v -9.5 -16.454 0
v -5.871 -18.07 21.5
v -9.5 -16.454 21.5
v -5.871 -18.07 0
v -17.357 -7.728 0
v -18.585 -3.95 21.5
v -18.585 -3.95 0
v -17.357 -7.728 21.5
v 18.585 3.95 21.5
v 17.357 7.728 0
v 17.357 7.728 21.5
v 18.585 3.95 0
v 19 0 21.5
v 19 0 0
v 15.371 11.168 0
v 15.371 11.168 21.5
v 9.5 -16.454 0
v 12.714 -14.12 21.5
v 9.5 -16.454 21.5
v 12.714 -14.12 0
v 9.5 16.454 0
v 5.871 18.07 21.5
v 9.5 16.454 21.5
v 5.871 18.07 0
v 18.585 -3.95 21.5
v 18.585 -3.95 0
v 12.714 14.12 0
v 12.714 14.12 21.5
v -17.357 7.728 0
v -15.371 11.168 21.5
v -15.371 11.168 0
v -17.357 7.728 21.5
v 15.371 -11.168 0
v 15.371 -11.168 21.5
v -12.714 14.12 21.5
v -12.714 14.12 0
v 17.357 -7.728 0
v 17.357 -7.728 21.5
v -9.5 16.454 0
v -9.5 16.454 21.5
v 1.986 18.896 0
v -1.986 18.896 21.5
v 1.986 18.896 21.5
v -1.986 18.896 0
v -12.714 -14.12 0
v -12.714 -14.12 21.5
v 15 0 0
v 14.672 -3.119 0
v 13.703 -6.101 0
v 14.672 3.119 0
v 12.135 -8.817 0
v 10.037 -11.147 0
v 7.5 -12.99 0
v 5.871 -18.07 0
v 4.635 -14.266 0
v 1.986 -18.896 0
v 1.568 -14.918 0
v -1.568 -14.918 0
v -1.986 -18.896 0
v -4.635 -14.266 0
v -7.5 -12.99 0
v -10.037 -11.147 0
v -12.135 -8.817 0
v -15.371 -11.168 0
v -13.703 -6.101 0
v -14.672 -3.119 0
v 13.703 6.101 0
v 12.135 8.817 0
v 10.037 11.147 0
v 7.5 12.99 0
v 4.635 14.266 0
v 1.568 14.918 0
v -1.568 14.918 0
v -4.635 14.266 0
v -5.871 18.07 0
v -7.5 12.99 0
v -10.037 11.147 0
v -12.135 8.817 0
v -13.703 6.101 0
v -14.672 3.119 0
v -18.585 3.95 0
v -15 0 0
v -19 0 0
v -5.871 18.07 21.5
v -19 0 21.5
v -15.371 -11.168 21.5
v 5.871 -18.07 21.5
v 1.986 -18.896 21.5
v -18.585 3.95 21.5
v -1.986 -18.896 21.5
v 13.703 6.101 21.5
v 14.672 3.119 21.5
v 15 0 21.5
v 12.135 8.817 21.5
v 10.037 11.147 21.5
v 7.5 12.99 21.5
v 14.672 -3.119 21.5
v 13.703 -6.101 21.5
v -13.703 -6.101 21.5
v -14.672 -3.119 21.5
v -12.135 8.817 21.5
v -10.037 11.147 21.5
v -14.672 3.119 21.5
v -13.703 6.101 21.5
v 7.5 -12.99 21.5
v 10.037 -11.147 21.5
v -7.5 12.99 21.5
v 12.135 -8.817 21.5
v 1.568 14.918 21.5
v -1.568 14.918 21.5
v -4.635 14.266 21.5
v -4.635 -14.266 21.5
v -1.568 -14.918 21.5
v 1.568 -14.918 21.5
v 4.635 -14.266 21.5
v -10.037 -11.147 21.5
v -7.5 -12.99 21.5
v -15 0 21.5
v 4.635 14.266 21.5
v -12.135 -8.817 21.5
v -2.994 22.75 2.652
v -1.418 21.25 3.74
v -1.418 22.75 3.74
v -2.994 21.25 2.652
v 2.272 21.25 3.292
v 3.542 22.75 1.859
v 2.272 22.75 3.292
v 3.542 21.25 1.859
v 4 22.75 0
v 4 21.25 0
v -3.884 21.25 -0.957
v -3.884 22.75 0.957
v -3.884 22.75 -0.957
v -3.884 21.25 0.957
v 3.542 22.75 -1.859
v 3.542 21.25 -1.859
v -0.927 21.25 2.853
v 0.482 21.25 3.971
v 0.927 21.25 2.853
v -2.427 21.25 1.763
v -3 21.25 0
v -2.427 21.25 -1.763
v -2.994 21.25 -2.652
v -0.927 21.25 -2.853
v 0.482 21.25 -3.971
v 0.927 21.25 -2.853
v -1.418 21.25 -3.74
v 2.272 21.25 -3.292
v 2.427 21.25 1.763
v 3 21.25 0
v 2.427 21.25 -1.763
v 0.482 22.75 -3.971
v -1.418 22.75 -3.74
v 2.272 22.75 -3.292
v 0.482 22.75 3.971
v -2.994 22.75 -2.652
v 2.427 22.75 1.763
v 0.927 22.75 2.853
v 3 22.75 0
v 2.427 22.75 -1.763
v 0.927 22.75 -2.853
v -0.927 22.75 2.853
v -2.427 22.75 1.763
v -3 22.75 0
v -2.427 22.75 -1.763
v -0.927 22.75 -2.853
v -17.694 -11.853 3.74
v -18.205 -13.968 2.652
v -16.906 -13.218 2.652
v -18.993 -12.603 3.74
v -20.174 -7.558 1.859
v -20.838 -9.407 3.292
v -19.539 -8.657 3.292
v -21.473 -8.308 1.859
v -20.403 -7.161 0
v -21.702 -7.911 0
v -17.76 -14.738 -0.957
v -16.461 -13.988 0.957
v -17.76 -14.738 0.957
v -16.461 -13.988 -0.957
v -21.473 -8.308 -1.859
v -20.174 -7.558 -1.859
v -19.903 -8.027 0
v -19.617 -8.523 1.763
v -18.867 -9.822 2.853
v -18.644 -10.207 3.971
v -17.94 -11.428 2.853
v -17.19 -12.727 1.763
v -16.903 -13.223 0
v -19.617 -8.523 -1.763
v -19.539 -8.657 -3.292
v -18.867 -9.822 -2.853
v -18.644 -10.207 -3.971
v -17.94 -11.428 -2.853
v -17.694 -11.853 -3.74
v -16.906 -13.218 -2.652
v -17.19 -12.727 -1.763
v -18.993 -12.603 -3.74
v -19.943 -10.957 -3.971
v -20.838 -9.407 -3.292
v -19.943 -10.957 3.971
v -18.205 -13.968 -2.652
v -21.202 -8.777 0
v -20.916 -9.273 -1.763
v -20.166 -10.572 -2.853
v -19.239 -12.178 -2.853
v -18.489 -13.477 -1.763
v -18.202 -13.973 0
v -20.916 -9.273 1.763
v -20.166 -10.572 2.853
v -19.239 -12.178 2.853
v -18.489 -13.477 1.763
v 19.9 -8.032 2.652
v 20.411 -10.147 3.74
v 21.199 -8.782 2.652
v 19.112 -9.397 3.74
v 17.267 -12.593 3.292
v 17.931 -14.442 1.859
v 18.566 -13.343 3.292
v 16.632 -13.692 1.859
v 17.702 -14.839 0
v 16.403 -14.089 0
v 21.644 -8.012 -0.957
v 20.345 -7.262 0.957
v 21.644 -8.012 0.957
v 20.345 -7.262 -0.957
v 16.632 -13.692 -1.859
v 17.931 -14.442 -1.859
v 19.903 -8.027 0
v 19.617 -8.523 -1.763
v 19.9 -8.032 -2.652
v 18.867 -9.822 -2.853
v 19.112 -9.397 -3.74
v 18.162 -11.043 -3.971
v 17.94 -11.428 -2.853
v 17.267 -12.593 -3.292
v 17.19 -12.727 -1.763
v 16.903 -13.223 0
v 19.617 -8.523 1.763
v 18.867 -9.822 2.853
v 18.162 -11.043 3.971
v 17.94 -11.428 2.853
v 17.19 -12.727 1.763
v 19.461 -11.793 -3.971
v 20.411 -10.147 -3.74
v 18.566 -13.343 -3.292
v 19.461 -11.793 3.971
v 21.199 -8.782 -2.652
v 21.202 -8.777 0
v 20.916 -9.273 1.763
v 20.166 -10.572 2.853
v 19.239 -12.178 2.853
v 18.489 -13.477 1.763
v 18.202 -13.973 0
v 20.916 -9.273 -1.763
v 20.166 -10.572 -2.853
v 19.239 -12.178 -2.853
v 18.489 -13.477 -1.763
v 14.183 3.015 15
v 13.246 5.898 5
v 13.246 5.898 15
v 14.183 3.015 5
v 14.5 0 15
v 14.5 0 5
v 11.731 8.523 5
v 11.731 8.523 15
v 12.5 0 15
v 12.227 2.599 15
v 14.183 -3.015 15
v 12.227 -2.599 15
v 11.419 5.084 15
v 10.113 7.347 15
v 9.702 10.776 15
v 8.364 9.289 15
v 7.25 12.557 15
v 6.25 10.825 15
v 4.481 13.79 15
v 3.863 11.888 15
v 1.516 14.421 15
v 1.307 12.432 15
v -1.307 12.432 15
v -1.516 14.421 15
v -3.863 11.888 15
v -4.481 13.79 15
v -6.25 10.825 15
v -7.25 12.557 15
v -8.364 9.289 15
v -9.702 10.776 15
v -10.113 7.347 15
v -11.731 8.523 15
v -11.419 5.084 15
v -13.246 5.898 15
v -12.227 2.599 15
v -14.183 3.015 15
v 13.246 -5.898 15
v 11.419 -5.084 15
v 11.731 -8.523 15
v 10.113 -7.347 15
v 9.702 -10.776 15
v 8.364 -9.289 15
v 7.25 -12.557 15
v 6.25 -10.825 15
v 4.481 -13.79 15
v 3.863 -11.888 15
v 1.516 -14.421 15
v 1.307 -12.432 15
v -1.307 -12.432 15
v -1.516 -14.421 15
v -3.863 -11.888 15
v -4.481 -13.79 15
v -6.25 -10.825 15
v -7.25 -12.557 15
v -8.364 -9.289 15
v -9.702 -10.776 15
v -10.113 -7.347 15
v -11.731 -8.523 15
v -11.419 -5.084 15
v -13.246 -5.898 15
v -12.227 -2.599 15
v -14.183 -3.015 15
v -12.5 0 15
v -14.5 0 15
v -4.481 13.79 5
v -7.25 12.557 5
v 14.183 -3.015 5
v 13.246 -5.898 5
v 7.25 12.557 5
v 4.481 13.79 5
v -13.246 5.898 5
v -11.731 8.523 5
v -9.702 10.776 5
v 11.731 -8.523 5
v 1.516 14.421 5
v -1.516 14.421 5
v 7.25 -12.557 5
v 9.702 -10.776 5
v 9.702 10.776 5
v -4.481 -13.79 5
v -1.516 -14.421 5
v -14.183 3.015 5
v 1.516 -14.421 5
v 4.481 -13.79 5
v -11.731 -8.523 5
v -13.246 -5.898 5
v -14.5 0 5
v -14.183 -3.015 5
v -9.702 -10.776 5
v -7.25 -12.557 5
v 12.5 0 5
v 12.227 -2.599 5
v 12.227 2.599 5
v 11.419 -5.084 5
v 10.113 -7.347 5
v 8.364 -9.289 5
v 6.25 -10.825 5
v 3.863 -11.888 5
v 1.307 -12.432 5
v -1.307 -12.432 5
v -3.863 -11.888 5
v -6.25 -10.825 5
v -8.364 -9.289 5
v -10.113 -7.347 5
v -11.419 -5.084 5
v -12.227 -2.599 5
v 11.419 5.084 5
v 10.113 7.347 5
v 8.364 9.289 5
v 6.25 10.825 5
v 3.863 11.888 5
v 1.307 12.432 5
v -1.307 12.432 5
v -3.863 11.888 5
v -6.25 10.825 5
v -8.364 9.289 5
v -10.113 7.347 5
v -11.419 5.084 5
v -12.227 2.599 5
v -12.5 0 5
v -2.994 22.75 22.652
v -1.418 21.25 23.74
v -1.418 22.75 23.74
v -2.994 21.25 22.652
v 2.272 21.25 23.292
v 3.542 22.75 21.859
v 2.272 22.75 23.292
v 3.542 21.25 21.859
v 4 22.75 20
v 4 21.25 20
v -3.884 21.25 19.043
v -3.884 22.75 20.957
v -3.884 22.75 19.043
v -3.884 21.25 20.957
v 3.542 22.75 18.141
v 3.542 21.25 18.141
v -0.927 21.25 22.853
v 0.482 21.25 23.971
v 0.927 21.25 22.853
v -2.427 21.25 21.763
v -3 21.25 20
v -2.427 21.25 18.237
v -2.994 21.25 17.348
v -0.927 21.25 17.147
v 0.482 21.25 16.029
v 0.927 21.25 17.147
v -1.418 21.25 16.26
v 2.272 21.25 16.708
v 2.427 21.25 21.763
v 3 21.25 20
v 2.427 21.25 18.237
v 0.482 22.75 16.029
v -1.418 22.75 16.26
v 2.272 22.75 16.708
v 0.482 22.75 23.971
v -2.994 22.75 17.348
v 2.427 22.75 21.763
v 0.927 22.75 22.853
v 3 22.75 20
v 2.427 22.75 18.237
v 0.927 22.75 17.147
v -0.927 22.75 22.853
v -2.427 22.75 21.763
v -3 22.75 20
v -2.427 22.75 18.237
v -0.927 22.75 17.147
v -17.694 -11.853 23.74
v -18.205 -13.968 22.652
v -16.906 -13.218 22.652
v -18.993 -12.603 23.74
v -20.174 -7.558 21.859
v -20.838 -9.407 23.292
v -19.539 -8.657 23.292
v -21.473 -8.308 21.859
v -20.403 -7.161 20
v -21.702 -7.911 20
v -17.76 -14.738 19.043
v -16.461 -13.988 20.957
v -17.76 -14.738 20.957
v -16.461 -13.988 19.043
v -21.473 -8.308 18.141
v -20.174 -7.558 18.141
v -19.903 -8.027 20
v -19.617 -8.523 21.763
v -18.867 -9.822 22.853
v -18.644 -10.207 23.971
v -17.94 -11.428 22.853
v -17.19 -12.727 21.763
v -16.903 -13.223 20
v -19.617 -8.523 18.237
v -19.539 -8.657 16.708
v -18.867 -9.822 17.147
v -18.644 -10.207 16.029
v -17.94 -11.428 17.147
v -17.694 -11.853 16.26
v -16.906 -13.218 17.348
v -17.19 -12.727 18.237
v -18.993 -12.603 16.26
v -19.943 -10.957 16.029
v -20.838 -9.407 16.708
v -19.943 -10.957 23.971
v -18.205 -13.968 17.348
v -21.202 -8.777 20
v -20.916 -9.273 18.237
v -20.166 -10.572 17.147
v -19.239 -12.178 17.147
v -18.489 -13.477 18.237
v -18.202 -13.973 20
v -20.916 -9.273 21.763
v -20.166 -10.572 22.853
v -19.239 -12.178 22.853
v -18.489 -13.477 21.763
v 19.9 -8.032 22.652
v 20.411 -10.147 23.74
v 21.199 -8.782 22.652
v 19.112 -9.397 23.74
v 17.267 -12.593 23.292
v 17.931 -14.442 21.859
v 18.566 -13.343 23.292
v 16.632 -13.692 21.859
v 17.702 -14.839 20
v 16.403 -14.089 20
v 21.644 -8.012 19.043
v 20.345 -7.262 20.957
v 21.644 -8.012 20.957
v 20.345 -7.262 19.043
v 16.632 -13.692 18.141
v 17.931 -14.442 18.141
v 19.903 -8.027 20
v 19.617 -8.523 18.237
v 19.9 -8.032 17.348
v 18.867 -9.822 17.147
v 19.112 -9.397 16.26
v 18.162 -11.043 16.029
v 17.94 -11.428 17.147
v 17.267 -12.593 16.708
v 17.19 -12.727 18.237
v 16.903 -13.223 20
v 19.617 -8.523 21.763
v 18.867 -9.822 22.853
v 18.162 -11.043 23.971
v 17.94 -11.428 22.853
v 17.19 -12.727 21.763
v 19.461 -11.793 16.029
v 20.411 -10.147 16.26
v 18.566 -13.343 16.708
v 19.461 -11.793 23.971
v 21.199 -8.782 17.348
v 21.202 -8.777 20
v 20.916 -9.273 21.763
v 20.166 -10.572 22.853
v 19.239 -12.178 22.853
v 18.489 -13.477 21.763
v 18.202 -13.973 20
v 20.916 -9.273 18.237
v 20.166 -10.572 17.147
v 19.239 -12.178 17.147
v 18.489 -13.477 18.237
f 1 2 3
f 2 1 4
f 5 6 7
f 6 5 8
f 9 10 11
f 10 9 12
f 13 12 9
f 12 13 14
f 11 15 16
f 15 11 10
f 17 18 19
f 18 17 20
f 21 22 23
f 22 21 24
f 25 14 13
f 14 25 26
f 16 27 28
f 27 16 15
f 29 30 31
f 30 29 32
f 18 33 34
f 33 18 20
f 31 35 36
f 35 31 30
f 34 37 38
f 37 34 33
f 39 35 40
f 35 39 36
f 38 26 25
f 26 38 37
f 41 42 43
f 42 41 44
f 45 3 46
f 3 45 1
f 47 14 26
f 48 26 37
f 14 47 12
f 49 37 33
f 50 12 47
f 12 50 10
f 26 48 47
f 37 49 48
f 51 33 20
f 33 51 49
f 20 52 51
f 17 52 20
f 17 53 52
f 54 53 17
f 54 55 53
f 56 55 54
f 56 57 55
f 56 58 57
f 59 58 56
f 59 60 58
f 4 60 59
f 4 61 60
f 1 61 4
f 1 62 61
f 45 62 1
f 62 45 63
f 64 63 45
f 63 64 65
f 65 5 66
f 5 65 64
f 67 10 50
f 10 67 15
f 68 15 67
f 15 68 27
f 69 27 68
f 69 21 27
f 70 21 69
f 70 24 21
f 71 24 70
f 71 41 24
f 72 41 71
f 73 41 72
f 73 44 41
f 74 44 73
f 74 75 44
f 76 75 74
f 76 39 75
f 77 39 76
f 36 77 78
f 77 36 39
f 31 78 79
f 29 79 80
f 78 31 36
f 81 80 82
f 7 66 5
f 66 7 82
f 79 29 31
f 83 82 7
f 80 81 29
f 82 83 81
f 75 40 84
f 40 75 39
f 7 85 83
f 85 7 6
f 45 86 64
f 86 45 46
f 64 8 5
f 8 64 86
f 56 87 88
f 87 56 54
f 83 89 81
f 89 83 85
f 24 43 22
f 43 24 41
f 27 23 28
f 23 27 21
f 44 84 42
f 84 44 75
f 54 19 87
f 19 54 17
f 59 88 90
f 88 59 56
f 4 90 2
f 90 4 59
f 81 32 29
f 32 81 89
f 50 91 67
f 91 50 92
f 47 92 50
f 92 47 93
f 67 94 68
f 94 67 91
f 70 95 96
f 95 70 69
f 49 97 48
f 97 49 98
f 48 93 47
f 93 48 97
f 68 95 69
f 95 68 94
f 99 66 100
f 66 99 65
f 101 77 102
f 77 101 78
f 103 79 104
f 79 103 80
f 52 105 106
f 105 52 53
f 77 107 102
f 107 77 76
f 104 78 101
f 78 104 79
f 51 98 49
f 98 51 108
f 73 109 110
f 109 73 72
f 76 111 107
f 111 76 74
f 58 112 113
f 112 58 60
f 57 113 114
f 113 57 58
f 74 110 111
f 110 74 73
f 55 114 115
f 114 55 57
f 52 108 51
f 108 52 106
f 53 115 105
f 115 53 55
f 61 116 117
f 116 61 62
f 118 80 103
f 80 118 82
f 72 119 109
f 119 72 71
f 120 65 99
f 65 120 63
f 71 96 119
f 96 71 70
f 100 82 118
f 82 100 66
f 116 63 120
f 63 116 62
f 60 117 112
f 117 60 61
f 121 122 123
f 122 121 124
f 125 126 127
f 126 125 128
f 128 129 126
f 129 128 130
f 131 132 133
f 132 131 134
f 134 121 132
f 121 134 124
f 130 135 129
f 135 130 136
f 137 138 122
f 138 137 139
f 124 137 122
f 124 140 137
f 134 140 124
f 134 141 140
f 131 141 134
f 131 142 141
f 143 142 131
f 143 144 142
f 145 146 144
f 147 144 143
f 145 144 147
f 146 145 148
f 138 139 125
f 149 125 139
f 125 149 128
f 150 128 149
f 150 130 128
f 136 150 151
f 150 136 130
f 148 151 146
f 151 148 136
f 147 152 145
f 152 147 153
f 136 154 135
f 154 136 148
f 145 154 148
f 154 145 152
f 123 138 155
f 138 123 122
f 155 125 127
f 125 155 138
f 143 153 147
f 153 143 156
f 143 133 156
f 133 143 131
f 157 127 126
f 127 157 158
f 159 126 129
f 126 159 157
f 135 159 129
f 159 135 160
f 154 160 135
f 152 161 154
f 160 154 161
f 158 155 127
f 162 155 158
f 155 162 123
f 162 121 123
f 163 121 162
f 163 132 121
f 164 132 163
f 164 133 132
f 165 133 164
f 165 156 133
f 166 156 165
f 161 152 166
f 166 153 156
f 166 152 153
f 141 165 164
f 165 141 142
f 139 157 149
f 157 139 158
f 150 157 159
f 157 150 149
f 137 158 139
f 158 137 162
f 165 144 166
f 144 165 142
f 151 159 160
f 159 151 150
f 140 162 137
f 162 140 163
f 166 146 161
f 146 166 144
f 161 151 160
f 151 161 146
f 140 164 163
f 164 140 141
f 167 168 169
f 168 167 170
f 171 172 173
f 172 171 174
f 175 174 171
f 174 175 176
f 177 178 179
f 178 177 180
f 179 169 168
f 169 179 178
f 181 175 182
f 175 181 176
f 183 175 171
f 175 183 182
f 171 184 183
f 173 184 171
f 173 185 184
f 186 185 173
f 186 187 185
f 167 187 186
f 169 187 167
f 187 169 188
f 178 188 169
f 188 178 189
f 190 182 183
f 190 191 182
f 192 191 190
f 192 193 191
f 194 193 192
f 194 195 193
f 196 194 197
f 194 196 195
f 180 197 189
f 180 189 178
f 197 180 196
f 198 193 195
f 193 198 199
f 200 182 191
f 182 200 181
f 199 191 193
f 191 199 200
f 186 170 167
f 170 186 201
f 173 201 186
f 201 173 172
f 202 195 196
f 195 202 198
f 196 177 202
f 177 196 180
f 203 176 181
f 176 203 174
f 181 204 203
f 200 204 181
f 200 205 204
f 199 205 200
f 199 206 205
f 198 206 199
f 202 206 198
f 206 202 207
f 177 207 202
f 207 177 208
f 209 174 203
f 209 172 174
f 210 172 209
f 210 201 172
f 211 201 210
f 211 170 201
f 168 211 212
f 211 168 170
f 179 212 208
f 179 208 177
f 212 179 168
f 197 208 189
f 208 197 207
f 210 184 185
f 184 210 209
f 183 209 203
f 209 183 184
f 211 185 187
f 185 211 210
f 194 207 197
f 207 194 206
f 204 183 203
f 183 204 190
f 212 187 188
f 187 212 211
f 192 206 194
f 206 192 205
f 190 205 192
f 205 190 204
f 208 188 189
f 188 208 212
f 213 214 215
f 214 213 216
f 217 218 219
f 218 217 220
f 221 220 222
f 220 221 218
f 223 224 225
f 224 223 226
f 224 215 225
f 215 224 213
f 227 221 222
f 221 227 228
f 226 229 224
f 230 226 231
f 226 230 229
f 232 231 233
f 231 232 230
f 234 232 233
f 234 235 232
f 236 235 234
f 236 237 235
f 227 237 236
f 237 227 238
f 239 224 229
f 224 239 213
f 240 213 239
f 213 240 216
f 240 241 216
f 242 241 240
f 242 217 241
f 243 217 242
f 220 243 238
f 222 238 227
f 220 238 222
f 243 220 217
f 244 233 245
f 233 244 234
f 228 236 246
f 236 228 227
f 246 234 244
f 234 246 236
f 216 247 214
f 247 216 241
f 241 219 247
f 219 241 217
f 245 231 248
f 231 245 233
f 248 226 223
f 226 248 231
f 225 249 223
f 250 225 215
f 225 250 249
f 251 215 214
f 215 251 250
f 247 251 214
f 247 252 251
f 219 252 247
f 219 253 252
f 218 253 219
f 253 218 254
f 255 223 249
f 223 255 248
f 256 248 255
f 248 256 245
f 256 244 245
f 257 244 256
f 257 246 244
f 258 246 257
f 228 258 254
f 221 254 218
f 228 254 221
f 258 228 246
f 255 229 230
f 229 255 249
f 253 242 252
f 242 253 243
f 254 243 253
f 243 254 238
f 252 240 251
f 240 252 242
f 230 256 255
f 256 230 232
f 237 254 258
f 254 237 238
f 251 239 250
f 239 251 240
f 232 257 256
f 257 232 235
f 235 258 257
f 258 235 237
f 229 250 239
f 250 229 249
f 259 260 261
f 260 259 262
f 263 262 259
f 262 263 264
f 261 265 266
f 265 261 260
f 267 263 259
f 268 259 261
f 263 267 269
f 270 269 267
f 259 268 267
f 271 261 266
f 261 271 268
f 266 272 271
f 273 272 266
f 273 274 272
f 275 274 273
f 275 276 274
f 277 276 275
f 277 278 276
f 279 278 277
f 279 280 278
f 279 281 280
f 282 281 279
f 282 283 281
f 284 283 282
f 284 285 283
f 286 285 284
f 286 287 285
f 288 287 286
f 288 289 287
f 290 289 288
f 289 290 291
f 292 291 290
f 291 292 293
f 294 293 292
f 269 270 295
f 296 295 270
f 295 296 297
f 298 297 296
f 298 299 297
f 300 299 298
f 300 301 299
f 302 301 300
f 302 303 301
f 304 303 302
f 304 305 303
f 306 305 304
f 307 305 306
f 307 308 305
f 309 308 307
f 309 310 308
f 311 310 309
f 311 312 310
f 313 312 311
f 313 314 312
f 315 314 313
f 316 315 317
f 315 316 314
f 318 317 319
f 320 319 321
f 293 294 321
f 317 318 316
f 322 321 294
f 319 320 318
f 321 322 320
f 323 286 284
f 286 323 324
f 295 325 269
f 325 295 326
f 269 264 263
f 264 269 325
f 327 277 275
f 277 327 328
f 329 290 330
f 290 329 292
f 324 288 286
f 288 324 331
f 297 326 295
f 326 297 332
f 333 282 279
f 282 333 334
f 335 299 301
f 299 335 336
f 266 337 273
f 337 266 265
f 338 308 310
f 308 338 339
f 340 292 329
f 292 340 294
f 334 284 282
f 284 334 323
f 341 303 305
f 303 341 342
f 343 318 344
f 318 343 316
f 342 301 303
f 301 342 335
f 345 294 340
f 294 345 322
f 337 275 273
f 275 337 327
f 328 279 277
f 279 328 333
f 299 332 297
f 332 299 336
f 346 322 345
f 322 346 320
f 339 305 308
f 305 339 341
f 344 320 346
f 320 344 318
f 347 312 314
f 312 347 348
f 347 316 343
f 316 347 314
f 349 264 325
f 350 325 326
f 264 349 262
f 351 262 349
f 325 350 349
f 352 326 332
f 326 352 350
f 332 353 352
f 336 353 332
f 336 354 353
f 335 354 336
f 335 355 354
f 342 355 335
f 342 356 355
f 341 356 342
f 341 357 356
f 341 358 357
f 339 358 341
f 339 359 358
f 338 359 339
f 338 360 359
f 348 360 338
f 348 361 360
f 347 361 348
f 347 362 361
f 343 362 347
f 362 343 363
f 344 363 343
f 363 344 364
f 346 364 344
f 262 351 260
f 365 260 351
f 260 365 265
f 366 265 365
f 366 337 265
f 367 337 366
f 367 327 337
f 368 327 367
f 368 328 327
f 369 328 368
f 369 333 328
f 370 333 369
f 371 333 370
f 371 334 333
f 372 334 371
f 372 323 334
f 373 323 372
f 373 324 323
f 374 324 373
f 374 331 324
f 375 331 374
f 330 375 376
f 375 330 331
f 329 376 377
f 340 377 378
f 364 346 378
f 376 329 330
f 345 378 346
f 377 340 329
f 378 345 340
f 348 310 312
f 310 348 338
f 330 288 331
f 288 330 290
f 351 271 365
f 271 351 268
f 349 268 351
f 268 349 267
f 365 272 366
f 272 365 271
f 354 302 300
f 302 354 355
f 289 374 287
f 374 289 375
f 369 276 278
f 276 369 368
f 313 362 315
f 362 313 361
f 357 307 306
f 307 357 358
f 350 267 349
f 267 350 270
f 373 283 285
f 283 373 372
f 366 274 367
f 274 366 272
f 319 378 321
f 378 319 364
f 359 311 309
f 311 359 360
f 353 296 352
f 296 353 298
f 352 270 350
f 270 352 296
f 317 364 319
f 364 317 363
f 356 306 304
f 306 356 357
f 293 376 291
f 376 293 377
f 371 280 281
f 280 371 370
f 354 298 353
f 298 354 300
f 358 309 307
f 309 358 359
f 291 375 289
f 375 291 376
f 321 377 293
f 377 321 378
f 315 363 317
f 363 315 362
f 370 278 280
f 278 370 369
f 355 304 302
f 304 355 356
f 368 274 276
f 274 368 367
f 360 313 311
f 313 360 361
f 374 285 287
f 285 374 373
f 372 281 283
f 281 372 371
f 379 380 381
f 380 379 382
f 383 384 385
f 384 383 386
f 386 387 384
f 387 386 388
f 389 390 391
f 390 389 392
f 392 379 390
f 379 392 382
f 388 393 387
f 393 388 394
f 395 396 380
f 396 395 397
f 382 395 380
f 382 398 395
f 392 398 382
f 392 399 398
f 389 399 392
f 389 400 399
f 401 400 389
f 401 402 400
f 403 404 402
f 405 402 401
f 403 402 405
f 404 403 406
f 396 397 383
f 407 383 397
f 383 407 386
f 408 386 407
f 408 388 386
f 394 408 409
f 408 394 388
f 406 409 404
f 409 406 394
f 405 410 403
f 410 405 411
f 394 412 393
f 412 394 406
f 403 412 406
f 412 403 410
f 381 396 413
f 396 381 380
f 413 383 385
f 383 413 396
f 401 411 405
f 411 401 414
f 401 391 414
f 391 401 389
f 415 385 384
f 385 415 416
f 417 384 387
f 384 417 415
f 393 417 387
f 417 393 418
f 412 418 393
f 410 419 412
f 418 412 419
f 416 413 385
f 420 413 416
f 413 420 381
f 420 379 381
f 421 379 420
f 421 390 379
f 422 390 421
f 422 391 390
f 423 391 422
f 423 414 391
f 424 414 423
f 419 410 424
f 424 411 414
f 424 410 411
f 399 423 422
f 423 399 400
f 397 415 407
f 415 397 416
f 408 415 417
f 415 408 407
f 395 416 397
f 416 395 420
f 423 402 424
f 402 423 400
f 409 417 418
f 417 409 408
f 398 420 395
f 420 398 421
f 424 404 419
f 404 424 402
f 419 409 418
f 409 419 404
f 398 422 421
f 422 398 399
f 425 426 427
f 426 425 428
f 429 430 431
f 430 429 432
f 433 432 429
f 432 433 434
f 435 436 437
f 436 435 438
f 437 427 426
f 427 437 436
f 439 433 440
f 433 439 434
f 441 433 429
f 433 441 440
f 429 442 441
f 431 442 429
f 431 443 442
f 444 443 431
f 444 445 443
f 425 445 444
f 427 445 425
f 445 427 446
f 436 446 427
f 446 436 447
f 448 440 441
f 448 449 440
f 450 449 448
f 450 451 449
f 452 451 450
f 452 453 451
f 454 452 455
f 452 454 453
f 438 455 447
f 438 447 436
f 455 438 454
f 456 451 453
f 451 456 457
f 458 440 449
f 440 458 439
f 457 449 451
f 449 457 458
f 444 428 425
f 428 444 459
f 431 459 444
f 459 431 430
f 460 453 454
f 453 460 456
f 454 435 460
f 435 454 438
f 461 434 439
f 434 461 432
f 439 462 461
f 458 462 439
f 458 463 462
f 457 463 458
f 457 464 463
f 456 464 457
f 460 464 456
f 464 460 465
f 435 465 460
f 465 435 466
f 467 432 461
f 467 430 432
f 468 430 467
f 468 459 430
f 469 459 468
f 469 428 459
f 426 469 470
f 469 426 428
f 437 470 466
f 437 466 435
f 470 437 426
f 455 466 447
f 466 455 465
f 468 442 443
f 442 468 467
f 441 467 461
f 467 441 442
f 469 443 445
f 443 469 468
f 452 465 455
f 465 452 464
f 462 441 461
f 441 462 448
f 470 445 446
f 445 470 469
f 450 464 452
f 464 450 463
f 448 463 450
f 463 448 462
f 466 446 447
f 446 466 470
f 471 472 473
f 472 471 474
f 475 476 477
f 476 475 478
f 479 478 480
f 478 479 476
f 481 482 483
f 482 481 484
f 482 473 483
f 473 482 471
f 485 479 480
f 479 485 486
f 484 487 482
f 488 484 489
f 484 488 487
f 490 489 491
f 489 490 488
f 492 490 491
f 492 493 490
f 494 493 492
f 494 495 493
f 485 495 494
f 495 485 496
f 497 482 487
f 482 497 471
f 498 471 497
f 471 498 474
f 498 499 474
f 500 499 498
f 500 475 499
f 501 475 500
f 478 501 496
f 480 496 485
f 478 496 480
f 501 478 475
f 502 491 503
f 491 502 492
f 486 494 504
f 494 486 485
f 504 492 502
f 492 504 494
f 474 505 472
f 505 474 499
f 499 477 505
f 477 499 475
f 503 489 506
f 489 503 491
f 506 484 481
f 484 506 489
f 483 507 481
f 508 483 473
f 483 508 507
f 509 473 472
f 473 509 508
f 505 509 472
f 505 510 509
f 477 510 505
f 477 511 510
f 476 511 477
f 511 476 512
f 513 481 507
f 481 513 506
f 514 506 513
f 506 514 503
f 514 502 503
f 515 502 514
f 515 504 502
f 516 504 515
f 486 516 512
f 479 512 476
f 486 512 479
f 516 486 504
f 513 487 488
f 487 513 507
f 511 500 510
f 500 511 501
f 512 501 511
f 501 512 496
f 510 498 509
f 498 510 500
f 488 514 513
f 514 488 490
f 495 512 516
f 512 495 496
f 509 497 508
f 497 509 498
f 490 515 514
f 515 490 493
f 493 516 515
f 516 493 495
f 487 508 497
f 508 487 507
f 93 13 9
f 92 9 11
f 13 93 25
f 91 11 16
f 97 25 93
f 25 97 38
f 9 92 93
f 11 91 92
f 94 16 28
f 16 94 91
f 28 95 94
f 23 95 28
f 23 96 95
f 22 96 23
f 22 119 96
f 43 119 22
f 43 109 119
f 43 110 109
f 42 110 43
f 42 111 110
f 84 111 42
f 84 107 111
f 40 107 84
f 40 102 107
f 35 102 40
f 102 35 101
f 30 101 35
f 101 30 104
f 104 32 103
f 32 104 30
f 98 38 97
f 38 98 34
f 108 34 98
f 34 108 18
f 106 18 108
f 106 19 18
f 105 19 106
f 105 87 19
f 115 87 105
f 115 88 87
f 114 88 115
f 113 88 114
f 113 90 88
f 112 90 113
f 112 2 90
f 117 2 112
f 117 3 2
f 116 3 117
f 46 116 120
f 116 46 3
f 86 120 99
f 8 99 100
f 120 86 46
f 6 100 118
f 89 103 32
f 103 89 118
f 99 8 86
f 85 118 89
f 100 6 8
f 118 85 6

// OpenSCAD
// Parameters for the model
main_body_outer_diameter = 38; // Reduced to make the wall thinner
main_body_inner_diameter = 30;
main_body_height = 20;
mounting_loop_radius = 4; // Reduced to match original model
mounting_loop_thickness = 1.5; // Reduced to match original model
mounting_loop_offset = main_body_outer_diameter / 2 + mounting_loop_radius - 1; // Adjusted position closer to original
end_cap_thickness = 1.5; // Reduced thickness to match original model
inner_ring_outer_diameter = main_body_inner_diameter - 1; // Reduced for snug fit
inner_ring_inner_diameter = 25;
inner_ring_height = 10;

// Function to create a mounting loop
module mounting_loop() {
    translate([0, mounting_loop_offset, 0])
        rotate([90, 0, 0])
            difference() {
                cylinder(r=mounting_loop_radius, h=mounting_loop_thickness, center=true);
                cylinder(r=mounting_loop_radius - 1, h=mounting_loop_thickness + 1, center=true);
            }
}

// Main body
module main_body() {
    difference() {
        cylinder(r=main_body_outer_diameter / 2, h=main_body_height, center=false);
        translate([0, 0, -1])
            cylinder(r=main_body_inner_diameter / 2, h=main_body_height + 2, center=false);
    }
    // Add mounting loops
    for (i = [0, 120, 240]) {
        rotate([0, 0, i])
            mounting_loop();
    }
}

// End cap
module end_cap() {
    difference() {
        cylinder(r=main_body_outer_diameter / 2, h=end_cap_thickness, center=false);
        translate([0, 0, -1])
            cylinder(r=main_body_inner_diameter / 2, h=end_cap_thickness + 2, center=false);
    }
    // Add mounting loops
    for (i = [0, 120, 240]) {
        rotate([0, 0, i])
            mounting_loop();
    }
}

// Inner cylindrical ring
module inner_cylindrical_ring() {
    difference() {
        cylinder(r=inner_ring_outer_diameter / 2, h=inner_ring_height, center=false);
        translate([0, 0, -1])
            cylinder(r=inner_ring_inner_diameter / 2, h=inner_ring_height + 2, center=false);
    }
}

// Assembly
module assembly() {
    // Layer 3: Main body
    main_body();

    // Layer 2: Inner cylindrical ring
    translate([0, 0, 5])
        inner_cylindrical_ring();

    // Layer 1: End cap
    translate([0, 0, main_body_height])
        end_cap();
}

// Render the assembly
assembly();
